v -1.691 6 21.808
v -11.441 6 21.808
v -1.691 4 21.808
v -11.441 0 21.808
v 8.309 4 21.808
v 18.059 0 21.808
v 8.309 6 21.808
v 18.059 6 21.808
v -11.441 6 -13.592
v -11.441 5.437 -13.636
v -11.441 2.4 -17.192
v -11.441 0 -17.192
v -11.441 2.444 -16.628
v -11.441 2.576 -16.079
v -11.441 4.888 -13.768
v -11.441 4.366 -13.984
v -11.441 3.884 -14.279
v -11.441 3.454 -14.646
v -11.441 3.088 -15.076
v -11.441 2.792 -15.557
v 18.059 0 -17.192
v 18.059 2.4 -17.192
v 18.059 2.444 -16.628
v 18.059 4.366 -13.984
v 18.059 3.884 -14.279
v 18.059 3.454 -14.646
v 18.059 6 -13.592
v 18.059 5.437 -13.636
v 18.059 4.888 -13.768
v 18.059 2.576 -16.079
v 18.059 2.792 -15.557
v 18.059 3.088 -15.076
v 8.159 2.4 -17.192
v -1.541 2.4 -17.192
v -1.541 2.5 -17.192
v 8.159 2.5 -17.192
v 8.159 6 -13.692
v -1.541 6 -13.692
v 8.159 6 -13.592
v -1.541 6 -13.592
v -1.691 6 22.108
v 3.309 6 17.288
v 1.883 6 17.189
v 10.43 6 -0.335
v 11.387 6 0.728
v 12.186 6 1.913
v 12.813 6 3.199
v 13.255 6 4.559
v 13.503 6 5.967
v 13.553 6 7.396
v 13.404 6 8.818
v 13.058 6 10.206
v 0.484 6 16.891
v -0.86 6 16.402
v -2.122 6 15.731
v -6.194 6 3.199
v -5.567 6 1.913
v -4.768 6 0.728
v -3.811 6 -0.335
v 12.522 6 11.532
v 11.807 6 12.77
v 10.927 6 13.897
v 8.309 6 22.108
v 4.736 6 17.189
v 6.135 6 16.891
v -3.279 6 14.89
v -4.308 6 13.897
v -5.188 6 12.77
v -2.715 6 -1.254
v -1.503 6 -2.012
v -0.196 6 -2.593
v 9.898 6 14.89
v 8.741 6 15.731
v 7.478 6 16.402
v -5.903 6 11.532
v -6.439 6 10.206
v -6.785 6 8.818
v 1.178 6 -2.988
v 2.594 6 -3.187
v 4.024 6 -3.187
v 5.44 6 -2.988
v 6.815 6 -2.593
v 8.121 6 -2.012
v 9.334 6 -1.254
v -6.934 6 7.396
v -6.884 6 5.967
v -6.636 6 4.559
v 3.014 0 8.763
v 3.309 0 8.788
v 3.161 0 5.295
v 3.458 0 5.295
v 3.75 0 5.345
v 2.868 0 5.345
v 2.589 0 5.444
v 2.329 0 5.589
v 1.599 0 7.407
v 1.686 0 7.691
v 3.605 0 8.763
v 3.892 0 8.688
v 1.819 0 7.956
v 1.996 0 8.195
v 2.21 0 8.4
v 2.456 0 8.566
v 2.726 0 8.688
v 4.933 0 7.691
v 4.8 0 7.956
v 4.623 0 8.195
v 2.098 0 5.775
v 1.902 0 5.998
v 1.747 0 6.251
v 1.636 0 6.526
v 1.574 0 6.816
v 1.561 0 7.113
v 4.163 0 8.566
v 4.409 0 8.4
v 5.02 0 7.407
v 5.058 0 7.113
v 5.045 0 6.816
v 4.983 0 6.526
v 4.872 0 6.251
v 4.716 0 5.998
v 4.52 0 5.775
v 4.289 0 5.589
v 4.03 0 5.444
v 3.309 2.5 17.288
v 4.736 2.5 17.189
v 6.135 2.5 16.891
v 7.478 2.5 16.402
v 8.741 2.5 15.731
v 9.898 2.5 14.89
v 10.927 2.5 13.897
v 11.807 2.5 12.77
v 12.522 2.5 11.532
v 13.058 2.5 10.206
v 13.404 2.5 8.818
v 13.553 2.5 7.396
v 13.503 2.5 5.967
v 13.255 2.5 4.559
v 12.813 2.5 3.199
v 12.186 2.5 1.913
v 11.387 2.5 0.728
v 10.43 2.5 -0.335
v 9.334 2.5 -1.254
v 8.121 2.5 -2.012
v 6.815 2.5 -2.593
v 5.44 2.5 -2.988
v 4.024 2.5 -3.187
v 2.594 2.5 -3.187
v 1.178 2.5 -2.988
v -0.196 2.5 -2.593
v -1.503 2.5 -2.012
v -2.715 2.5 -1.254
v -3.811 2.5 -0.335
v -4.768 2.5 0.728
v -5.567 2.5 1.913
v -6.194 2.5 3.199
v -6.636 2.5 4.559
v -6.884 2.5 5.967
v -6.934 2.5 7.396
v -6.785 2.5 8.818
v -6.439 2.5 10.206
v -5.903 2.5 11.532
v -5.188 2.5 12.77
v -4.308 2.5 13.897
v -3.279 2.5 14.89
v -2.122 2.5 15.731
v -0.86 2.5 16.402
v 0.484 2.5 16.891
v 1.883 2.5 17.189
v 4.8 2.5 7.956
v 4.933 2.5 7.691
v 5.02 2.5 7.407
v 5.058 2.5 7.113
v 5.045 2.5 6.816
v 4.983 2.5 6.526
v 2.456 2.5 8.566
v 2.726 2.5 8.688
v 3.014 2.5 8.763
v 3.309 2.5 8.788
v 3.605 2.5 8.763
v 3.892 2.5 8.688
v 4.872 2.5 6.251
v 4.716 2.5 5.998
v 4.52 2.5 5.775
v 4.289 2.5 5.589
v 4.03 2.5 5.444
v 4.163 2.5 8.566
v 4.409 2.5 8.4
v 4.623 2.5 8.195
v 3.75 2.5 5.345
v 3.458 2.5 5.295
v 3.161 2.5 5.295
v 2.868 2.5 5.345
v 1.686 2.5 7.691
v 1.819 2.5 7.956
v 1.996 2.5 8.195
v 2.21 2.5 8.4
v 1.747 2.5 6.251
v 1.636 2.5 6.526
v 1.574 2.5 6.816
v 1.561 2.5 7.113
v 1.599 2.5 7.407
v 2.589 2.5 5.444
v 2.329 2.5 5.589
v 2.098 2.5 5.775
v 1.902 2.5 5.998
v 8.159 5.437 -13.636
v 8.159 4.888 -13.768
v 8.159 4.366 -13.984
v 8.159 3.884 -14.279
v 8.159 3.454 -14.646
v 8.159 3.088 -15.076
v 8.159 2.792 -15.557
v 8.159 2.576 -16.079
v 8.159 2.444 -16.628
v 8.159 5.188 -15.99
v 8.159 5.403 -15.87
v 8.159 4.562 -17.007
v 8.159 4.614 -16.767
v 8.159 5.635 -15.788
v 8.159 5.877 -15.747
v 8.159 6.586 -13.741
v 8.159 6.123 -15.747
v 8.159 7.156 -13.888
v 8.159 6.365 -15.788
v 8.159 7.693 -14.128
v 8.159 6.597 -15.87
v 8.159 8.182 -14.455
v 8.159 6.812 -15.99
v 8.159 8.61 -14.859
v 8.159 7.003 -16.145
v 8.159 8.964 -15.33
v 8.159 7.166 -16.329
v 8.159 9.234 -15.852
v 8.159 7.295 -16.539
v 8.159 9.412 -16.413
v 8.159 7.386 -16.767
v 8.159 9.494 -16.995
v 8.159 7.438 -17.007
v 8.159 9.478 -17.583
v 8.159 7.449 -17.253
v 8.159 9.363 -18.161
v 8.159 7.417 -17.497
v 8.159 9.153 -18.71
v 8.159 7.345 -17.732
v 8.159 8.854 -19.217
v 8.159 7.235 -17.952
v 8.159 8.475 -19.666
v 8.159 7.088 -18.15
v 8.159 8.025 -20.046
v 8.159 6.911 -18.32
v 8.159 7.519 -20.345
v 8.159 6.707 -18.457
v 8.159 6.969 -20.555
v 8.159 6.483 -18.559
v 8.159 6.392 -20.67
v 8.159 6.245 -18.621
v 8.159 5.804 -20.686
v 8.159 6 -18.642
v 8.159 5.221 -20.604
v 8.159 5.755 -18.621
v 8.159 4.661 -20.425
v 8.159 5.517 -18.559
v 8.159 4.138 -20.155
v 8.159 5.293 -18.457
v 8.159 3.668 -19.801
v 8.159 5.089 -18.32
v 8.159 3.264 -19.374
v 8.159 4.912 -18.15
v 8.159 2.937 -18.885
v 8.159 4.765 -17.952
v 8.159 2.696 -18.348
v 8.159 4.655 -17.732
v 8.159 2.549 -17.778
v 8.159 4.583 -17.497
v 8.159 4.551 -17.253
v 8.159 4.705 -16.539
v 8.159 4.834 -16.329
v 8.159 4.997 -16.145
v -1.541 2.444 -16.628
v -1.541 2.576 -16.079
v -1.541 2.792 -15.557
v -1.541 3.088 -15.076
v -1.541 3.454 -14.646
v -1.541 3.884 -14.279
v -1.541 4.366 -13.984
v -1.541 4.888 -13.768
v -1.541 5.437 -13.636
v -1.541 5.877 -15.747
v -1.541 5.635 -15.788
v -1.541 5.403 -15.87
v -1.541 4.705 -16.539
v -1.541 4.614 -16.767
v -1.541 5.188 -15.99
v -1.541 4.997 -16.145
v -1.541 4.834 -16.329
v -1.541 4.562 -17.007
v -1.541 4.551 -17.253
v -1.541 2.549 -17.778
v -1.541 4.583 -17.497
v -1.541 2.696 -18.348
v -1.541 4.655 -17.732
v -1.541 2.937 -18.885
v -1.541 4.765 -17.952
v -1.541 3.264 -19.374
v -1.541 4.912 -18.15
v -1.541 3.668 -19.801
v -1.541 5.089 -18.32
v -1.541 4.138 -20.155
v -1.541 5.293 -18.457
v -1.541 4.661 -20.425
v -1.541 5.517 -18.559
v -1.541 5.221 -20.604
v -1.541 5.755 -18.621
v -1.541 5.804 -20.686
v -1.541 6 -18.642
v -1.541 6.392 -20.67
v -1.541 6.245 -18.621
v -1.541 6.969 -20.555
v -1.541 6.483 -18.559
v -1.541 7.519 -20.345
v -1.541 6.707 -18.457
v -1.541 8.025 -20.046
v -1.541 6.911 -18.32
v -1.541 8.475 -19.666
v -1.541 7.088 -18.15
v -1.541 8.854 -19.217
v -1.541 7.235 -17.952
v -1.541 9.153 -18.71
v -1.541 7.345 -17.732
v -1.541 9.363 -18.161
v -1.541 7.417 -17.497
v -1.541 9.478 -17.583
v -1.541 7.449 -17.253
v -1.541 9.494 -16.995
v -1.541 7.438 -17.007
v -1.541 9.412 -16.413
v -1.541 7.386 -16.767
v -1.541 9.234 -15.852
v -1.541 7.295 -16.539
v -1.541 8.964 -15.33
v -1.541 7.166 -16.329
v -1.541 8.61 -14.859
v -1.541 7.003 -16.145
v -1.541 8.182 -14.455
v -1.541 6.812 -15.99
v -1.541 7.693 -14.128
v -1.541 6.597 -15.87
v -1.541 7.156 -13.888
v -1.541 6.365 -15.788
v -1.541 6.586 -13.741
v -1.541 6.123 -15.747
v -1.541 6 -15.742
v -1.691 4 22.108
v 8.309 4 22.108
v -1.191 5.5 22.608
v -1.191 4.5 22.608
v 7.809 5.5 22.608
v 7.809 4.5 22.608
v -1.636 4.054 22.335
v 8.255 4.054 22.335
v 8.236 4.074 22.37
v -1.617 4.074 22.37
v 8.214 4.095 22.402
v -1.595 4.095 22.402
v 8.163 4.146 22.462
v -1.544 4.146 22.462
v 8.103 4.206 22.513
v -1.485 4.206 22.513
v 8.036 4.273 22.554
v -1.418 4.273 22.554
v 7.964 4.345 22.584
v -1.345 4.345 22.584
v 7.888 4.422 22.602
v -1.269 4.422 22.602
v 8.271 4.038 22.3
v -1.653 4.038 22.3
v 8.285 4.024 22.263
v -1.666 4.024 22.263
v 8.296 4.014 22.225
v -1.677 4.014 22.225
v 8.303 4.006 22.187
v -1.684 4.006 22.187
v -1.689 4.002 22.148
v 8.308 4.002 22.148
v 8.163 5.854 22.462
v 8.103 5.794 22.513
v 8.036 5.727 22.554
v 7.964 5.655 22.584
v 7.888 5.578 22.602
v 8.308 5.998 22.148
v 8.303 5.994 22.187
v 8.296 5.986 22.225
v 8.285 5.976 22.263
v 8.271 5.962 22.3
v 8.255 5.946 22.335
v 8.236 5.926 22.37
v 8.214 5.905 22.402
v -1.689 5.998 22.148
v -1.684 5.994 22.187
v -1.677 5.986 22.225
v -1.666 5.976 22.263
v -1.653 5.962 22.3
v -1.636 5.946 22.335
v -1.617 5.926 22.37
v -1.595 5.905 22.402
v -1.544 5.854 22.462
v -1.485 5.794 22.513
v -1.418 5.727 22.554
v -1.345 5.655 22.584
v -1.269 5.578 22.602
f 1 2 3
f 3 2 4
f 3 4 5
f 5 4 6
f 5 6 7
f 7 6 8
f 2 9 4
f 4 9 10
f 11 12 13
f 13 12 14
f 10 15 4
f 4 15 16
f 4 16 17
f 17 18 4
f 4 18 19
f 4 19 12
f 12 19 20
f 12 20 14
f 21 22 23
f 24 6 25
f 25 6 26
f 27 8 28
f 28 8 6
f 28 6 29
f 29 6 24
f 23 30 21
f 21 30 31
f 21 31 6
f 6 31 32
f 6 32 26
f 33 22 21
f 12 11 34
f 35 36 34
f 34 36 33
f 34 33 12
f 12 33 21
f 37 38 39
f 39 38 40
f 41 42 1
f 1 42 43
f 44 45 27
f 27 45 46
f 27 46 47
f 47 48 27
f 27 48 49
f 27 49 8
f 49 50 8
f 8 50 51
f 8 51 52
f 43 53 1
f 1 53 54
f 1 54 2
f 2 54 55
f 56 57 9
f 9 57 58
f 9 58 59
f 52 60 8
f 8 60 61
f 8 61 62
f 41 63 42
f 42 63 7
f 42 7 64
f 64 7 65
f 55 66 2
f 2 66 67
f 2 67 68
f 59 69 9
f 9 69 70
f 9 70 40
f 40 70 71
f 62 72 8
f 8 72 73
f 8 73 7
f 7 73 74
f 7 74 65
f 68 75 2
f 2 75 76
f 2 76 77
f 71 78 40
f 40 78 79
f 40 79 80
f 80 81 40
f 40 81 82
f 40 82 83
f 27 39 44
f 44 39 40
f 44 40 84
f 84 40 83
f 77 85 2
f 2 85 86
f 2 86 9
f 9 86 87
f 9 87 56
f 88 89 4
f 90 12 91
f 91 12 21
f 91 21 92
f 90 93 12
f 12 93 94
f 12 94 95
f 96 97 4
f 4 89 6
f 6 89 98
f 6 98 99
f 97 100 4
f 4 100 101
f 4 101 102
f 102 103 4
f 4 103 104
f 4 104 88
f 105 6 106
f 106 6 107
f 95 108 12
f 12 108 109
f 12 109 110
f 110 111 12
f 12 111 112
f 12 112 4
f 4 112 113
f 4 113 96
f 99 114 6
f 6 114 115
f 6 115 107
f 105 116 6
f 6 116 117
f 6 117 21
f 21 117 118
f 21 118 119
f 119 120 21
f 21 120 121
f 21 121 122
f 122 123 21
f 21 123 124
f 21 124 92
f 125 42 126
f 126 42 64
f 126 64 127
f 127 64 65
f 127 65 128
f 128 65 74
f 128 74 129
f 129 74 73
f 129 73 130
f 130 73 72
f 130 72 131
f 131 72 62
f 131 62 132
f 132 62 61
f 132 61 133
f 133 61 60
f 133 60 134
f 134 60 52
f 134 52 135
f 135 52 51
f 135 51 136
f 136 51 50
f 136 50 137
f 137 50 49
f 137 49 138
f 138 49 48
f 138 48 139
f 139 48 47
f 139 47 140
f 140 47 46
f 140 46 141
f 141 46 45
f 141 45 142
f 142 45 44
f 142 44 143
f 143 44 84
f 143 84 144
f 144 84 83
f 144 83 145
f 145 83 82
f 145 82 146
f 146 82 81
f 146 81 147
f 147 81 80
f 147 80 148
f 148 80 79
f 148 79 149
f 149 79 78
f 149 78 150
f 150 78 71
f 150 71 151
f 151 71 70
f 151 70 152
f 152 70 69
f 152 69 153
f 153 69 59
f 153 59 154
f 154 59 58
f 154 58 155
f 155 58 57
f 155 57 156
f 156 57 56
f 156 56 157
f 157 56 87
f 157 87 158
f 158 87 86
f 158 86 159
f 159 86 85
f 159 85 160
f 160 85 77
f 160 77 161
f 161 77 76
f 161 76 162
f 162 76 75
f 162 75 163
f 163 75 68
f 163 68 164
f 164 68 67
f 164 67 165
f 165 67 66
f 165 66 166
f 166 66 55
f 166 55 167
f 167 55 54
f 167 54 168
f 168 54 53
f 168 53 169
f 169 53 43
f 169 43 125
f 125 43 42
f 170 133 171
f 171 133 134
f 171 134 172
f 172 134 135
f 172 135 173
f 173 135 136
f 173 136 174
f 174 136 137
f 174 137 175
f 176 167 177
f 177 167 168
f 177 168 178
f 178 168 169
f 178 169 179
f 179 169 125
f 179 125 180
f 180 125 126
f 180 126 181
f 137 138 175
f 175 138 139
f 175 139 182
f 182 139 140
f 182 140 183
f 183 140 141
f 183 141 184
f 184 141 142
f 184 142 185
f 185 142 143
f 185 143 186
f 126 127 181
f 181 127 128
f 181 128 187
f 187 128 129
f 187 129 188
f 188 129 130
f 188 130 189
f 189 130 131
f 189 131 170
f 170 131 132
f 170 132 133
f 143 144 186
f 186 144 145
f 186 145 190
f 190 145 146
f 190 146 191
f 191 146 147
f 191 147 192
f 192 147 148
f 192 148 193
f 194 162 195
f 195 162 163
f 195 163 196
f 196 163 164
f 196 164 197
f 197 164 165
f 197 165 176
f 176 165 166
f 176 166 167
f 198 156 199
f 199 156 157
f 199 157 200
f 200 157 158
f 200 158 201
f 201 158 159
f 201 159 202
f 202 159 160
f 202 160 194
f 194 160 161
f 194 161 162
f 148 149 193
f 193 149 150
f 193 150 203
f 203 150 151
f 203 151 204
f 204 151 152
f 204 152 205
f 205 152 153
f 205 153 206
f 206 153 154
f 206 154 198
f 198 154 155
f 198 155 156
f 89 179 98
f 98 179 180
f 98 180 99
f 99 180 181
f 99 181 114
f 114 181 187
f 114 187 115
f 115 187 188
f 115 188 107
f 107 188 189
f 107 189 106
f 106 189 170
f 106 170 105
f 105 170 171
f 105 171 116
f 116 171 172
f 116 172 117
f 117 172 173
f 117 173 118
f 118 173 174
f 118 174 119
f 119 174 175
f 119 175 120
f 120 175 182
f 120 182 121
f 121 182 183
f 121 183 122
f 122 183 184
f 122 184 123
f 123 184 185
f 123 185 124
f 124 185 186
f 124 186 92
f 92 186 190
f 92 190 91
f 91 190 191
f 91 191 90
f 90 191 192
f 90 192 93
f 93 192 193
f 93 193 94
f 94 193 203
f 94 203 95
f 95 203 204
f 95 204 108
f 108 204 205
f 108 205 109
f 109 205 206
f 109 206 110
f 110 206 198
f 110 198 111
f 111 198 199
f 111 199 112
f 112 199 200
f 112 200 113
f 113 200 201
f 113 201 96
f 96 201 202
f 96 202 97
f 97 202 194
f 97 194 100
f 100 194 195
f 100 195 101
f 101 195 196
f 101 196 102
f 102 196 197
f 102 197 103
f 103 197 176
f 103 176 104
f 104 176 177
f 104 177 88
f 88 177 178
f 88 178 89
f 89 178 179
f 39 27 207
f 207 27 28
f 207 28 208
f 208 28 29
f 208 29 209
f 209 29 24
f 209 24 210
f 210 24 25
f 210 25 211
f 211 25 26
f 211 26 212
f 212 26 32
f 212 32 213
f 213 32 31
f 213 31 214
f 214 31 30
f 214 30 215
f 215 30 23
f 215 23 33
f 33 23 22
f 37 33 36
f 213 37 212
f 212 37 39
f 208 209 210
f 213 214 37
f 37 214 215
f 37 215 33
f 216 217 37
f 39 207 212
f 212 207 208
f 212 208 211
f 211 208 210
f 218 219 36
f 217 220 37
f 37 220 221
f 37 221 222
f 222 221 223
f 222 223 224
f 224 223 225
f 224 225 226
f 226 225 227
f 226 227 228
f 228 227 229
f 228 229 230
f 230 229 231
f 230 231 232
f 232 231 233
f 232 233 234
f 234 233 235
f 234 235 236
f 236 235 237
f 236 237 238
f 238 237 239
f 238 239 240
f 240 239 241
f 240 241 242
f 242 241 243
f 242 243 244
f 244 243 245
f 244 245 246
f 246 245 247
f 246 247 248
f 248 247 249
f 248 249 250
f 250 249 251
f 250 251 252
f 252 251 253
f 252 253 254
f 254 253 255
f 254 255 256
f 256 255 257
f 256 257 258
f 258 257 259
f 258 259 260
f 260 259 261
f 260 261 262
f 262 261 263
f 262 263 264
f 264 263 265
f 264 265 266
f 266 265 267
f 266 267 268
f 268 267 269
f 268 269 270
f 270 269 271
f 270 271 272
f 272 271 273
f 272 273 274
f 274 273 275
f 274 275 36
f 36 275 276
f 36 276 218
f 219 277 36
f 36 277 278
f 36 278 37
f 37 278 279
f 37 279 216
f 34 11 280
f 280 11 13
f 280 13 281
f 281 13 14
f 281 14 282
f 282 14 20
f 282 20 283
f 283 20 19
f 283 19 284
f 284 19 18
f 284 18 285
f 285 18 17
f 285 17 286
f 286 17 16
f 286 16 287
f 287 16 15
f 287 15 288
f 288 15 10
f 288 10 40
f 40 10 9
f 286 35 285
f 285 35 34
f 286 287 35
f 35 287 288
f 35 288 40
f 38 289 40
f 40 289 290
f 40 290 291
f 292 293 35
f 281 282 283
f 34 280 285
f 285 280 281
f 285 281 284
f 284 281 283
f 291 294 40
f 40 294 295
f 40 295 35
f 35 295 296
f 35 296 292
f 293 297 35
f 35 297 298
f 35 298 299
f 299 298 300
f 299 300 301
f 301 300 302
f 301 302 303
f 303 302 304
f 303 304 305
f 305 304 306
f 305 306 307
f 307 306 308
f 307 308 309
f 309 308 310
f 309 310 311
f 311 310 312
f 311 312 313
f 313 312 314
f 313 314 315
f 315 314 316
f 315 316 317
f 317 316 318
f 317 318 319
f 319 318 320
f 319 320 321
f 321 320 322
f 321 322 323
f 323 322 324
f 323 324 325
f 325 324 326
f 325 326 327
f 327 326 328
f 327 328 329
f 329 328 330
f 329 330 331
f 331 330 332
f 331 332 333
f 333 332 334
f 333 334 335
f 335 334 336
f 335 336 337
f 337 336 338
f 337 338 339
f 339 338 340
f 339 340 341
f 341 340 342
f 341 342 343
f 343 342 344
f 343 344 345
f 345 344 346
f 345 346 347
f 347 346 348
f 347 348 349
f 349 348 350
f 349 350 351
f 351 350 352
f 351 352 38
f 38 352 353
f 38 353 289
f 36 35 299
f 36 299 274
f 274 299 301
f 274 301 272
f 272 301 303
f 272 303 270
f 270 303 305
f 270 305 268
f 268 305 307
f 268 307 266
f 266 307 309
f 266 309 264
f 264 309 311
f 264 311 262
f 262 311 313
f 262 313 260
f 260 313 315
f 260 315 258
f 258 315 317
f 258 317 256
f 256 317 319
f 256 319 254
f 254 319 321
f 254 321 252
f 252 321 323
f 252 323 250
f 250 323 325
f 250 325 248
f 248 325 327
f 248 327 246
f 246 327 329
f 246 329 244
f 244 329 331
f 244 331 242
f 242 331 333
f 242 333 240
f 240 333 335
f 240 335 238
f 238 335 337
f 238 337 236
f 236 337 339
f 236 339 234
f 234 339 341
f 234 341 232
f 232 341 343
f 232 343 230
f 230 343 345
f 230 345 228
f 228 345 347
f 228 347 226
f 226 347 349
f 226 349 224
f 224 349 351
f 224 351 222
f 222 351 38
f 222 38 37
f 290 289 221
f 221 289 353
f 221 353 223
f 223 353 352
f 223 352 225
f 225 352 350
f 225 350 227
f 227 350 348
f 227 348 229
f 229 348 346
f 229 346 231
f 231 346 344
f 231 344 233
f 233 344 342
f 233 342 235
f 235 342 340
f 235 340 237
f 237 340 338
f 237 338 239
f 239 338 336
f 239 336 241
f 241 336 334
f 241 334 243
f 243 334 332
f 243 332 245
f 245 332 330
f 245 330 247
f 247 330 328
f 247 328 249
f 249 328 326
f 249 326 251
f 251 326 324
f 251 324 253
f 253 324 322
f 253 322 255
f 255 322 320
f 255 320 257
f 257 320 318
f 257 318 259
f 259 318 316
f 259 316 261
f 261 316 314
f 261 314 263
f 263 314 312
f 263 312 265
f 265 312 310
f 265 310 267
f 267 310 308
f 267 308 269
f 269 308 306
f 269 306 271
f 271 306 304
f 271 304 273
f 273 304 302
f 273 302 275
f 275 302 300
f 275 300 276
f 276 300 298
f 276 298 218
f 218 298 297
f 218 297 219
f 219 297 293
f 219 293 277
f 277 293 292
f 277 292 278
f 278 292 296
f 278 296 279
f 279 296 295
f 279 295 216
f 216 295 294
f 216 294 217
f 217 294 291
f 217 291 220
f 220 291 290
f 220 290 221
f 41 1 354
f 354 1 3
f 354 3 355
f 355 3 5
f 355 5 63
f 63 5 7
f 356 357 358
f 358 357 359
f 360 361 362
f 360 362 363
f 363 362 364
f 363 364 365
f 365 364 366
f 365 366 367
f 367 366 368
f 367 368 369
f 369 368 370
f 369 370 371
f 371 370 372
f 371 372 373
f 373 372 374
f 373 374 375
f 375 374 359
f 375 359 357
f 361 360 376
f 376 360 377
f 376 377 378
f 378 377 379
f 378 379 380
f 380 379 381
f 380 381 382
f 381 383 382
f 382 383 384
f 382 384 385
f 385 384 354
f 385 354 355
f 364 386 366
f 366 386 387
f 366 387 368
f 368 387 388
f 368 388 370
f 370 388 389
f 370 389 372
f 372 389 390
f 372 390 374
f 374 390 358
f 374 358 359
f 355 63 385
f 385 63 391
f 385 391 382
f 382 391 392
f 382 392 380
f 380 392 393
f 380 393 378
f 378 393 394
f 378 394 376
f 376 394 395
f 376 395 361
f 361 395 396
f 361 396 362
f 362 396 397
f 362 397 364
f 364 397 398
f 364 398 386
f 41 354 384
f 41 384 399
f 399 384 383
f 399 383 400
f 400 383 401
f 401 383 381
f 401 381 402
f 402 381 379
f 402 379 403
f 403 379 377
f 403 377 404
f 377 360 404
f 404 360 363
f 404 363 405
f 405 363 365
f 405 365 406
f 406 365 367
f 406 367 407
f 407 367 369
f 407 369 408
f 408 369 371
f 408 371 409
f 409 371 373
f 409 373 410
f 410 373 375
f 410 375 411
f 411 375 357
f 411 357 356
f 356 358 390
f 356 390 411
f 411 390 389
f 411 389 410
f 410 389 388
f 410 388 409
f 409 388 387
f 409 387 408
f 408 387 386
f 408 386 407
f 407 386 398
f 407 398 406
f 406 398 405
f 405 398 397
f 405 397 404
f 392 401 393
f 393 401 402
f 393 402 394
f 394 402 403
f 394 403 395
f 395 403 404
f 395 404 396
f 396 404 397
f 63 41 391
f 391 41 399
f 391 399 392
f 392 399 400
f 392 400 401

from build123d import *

# Parameters (mm, degrees)
SKETCH2_W           = 29.5
SKETCH2_H           = 39
BOSS_EXTRUDE1_DEPTH = 6
SKETCH3_R           = 10.25
CUT_EXTRUDE1_DEPTH  = 3.5
SKETCH4_R           = 1.75
CUT_EXTRUDE2_DEPTH  = 3.5
SKETCH5_R           = 3.6
CUT_EXTRUDE3_DEPTH  = 9.9
SKETCH6_R           = 3.6
CUT_EXTRUDE4_DEPTH  = 9.9
SKETCH7_R           = 3.5
BOSS_EXTRUDE2_DEPTH = 9.7
CUT_EXTRUDE5_REACH  = 21.6
SKETCH8_R           = 1.45
SKETCH9_W           = 10
SKETCH9_H           = 2
BOSS_EXTRUDE3_DEPTH = 0.8
FILLET1_R           = 0.5


with BuildPart() as part:
    # Sketch2 → Boss-Extrude1 (new body)
    with BuildSketch(Plane(origin=(0, 0, 0), x_dir=(1, 0, 0), z_dir=(0, 1, 0))):
        with Locations((3.309391497, -2.30838063)):
            Rectangle(SKETCH2_W, SKETCH2_H)
    extrude(amount=BOSS_EXTRUDE1_DEPTH)

    # Sketch3 → Cut-Extrude1 (cut)
    with BuildSketch(Plane(origin=(0, 6, 0), x_dir=(1, 0, 0), z_dir=(0, 1, 0))):
        with Locations((3.309391497, -7.038449274)):
            Circle(SKETCH3_R)
    extrude(amount=-CUT_EXTRUDE1_DEPTH, mode=Mode.SUBTRACT)

    # Sketch4 → Cut-Extrude2 (cut, through all)
    with BuildSketch(Plane(origin=(0, 2.5, 0), x_dir=(1, 0, 0), z_dir=(0, 1, 0))):
        with Locations((3.309391497, -7.038449274)):
            Circle(SKETCH4_R)
    extrude(amount=-CUT_EXTRUDE2_DEPTH, mode=Mode.SUBTRACT)

    # Sketch5 → Cut-Extrude3 (cut)
    with BuildSketch(Plane(origin=(18.059391497, 0, 0), x_dir=(0, 0, -1), z_dir=(1, 0, 0))):
        with Locations((17.19161937, 6)):
            Circle(SKETCH5_R)
    extrude(amount=-CUT_EXTRUDE3_DEPTH, mode=Mode.SUBTRACT)

    # Sketch6 → Cut-Extrude4 (cut)
    with BuildSketch(Plane.ZY.offset(11.440608503)):
        with Locations((-17.19161937, 6)):
            Circle(SKETCH6_R)
    extrude(amount=-CUT_EXTRUDE4_DEPTH, mode=Mode.SUBTRACT)

    # Sketch7 → Boss-Extrude2 (add)
    with BuildSketch(Plane.ZY.offset(1.540608503)):
        with Locations((-17.19161937, 6)):
            Circle(SKETCH7_R)
    extrude(amount=-BOSS_EXTRUDE2_DEPTH)

    # Sketch8 → Cut-Extrude5 (cut, up to next)
    with BuildSketch(Plane(origin=(8.159391497, 0, 0), x_dir=(0, 0, -1), z_dir=(1, 0, 0)), mode=Mode.PRIVATE) as cut_extrude5_sk1:
        with Locations((17.19161937, 6)):
            Circle(SKETCH8_R)
    cut_extrude5_tool1 = extrude(cut_extrude5_sk1.sketch, amount=-CUT_EXTRUDE5_REACH, mode=Mode.PRIVATE) & part.part
    add(cut_extrude5_tool1.solids().sort_by_distance((8.159391, 6, -17.191619))[0], mode=Mode.SUBTRACT)

    # Sketch9 → Boss-Extrude3 (add)
    with BuildSketch(Plane.XY.offset(21.80838063)):
        with Locations((3.309391497, 5)):
            Rectangle(SKETCH9_W, SKETCH9_H)
    extrude(amount=BOSS_EXTRUDE3_DEPTH)

    # Fillet1
    fillet1_edges = [part.edges().sort_by_distance(p)[0] for p in [
        (-1.690608503, 5, 22.60838063),
        (3.309391497, 4, 22.60838063),
        (8.309391497, 5, 22.60838063),
        (3.309391497, 6, 22.60838063),
    ]]
    fillet(fillet1_edges, radius=FILLET1_R)


solid = part.part
